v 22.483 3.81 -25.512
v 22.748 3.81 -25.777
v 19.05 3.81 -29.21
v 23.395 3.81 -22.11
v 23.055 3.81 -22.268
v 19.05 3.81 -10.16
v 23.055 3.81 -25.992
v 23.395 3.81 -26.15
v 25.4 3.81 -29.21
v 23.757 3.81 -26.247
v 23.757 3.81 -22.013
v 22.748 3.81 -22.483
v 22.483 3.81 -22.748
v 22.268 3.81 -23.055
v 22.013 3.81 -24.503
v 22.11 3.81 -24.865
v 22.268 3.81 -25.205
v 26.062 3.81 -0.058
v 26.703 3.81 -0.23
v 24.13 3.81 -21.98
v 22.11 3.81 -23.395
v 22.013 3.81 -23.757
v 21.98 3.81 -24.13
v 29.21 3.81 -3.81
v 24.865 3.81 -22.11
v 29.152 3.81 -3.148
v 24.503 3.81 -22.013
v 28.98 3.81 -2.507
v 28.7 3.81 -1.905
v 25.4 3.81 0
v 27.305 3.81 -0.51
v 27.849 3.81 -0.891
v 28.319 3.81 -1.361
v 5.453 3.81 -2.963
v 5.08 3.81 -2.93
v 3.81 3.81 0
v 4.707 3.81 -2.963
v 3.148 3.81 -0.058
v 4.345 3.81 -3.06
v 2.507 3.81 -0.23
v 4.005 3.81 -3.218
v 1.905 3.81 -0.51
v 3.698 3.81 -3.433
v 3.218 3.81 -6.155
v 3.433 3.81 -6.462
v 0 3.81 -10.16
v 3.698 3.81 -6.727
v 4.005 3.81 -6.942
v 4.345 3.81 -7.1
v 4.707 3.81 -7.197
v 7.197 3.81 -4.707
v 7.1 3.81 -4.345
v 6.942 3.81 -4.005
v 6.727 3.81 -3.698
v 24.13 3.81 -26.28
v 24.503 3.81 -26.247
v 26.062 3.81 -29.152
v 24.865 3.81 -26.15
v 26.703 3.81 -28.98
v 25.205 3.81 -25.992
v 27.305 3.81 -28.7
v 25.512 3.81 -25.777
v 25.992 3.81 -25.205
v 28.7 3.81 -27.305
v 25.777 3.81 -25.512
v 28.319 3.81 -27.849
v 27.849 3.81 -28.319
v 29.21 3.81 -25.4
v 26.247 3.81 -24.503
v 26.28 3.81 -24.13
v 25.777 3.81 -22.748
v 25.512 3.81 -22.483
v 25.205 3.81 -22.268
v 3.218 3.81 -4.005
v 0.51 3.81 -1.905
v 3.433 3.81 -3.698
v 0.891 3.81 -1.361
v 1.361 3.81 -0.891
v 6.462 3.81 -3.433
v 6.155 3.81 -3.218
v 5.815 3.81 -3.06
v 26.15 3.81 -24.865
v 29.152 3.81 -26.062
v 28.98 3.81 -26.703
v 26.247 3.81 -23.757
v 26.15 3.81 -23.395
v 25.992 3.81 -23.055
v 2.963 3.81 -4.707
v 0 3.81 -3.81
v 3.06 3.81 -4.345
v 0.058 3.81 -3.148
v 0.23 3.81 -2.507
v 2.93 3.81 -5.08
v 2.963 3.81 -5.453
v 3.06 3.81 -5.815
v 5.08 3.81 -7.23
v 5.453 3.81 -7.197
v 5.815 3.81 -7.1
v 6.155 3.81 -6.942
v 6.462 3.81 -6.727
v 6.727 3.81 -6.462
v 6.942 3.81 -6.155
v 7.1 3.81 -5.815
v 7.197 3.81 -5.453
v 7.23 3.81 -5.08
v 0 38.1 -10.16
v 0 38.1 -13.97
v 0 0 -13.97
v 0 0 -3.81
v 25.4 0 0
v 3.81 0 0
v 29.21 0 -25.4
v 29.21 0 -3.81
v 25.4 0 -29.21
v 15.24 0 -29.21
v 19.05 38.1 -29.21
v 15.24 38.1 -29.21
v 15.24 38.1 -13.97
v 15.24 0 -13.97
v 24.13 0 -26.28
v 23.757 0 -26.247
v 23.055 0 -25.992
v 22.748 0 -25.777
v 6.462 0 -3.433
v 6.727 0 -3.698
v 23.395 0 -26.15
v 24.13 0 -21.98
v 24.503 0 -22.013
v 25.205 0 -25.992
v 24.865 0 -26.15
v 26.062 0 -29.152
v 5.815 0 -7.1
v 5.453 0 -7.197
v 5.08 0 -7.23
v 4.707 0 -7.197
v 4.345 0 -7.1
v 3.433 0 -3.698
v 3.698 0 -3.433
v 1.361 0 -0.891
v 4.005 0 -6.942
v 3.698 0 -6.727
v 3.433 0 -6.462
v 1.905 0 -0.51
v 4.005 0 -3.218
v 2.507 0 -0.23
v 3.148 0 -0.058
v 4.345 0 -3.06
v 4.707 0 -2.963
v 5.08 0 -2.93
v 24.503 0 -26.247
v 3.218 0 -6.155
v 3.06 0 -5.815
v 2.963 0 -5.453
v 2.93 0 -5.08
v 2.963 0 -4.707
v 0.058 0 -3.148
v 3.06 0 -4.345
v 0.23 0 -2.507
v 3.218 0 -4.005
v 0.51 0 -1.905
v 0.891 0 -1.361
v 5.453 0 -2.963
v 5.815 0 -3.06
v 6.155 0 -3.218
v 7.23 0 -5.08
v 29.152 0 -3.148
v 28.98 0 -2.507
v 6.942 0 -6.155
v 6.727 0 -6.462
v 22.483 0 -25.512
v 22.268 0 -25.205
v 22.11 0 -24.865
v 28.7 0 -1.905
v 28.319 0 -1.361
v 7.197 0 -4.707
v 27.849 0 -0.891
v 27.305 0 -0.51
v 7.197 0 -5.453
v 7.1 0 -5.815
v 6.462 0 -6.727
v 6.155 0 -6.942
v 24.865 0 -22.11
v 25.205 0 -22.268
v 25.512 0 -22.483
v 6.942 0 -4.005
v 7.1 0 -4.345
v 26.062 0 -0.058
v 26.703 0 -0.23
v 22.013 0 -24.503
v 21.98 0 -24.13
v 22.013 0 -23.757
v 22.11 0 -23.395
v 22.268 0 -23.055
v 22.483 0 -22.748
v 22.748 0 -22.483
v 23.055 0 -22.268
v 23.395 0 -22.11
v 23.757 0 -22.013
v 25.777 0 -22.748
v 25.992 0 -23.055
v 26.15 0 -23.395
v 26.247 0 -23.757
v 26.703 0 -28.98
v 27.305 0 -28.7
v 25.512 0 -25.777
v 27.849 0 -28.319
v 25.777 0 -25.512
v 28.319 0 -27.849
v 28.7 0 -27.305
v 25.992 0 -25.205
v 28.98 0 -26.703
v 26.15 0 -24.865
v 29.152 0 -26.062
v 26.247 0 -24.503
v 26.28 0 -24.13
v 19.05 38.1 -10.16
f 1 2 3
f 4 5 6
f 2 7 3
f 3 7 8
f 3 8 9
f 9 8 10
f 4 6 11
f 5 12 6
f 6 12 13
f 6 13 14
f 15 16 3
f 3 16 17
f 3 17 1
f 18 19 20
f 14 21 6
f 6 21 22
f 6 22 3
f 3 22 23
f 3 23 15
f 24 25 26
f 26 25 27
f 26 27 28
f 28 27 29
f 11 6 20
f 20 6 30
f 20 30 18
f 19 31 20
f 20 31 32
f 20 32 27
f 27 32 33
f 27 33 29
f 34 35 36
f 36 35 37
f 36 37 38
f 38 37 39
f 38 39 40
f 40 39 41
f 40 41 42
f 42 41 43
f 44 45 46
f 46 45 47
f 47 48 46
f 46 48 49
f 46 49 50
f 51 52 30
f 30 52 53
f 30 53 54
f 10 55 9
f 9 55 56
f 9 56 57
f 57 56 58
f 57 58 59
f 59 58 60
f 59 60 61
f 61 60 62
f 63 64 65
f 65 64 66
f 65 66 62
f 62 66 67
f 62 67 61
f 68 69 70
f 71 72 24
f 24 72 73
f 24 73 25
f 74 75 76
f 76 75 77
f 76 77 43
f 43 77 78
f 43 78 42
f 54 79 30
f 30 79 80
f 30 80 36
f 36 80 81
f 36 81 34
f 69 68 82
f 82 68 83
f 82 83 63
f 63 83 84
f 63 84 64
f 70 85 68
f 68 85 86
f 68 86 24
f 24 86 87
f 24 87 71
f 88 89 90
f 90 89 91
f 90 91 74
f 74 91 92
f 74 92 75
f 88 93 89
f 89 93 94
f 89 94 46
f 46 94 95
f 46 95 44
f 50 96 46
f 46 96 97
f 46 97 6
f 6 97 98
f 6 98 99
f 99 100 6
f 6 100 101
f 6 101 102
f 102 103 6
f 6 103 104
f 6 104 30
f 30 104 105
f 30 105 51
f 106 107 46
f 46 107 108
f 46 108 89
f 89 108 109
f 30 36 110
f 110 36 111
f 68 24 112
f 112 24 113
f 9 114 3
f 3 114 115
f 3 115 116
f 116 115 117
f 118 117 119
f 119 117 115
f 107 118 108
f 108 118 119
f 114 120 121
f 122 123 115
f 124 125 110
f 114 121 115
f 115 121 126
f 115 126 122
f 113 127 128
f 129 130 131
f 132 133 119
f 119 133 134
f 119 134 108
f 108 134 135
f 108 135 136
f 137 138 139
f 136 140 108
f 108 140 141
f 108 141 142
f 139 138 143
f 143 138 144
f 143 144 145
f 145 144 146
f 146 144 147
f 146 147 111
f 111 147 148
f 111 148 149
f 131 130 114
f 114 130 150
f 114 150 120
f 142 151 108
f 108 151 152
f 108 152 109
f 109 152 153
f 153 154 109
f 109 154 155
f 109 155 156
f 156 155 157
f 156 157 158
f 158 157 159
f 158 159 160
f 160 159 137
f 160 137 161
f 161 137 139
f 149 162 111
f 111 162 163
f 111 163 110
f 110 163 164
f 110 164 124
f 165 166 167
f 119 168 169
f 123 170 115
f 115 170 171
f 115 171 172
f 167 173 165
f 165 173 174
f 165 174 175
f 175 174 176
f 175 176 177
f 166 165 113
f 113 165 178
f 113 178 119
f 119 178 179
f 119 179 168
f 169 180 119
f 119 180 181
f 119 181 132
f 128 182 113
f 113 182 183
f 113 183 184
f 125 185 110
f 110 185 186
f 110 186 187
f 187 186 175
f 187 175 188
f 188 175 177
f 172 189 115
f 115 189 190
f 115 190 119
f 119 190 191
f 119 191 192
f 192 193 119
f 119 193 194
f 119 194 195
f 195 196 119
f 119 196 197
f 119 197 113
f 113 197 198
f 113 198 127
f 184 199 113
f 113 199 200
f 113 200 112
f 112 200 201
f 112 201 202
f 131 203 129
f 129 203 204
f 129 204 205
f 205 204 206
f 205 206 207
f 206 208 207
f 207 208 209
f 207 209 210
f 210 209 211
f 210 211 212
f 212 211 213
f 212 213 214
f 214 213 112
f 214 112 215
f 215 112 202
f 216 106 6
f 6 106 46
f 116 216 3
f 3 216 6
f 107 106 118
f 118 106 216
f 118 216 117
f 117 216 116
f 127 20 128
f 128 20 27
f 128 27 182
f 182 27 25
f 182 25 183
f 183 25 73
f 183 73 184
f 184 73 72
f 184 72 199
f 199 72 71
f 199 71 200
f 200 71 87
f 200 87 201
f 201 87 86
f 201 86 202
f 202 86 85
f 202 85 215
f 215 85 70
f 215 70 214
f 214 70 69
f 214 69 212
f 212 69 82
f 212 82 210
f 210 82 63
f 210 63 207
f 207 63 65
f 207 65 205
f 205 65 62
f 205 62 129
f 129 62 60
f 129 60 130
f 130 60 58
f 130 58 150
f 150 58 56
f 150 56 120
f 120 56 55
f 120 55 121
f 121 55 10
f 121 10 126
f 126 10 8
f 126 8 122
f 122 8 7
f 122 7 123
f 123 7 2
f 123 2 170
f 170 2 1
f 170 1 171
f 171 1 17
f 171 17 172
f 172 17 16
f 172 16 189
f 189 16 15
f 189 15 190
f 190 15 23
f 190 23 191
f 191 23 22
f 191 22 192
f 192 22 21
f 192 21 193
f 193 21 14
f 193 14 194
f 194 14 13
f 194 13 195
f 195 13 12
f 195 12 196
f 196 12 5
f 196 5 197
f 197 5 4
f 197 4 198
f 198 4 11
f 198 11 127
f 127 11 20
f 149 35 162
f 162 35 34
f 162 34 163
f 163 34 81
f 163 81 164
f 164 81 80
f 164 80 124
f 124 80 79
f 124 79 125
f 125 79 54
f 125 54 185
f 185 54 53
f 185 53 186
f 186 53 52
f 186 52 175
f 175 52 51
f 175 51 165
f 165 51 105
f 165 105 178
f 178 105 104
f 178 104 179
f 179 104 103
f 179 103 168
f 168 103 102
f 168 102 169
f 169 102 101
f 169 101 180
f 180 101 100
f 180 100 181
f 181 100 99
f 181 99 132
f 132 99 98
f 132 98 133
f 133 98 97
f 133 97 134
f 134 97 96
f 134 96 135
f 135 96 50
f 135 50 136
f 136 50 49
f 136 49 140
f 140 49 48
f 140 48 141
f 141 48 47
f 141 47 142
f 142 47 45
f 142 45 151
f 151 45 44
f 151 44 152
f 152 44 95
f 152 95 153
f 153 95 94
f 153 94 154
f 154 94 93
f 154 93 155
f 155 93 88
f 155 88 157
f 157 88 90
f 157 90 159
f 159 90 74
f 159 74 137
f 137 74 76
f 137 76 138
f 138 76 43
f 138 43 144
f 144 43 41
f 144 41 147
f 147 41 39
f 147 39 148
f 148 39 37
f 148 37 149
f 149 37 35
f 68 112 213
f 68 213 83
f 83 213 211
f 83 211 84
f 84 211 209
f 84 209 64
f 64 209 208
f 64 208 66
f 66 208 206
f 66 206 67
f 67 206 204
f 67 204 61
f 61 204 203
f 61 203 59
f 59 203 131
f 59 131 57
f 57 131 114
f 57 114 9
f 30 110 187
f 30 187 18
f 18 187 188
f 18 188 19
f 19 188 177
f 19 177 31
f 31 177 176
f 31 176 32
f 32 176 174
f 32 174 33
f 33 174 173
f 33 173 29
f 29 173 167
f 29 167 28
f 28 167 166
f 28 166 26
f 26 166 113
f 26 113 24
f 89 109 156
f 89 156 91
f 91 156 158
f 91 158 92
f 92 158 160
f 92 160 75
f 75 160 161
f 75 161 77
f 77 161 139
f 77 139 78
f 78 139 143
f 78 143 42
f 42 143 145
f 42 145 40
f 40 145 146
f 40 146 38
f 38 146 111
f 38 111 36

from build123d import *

# Parameters (mm, degrees)
BOSS_EXTRUDE1_DEPTH = 3.81
BOSS_EXTRUDE2_DEPTH = 34.29
SKETCH3_R           = 2.15
CUT_EXTRUDE1_DEPTH  = 4.81
FILLET1_R           = 3.81


with BuildPart() as part:
    # Sketch1 → Boss-Extrude1 (new body)
    with BuildSketch(Plane(origin=(0, 0, 0), x_dir=(1, 0, 0), z_dir=(0, 1, 0))):
        Polygon((29.21, 0), (29.21, 29.21), (15.24, 29.21), (15.24, 13.97), (0, 13.97), (0, 0), align=None)
    extrude(amount=BOSS_EXTRUDE1_DEPTH)

    # Sketch2 → Boss-Extrude2 (add)
    with BuildSketch(Plane(origin=(0, 3.81, 0), x_dir=(1, 0, 0), z_dir=(0, 1, 0))):
        Polygon((0, 13.97), (15.24, 13.97), (15.24, 29.21), (19.05, 29.21), (19.05, 10.16), (0, 10.16), align=None)
    extrude(amount=BOSS_EXTRUDE2_DEPTH)

    # Sketch3 → Cut-Extrude1 (cut, through all)
    with BuildSketch(Plane(origin=(0, 3.81, 0), x_dir=(1, 0, 0), z_dir=(0, 1, 0))):
        with Locations((5.08, 5.08)):
            Circle(SKETCH3_R)
        with Locations((24.13, 24.13)):
            Circle(SKETCH3_R)
    extrude(amount=-CUT_EXTRUDE1_DEPTH, mode=Mode.SUBTRACT)

    # Fillet1
    fillet1_edges = [part.edges().sort_by_distance(p)[0] for p in [
        (29.21, 1.905, -29.21),
        (29.21, 1.905, 0),
        (0, 1.905, 0),
    ]]
    fillet(fillet1_edges, radius=FILLET1_R)


solid = part.part
